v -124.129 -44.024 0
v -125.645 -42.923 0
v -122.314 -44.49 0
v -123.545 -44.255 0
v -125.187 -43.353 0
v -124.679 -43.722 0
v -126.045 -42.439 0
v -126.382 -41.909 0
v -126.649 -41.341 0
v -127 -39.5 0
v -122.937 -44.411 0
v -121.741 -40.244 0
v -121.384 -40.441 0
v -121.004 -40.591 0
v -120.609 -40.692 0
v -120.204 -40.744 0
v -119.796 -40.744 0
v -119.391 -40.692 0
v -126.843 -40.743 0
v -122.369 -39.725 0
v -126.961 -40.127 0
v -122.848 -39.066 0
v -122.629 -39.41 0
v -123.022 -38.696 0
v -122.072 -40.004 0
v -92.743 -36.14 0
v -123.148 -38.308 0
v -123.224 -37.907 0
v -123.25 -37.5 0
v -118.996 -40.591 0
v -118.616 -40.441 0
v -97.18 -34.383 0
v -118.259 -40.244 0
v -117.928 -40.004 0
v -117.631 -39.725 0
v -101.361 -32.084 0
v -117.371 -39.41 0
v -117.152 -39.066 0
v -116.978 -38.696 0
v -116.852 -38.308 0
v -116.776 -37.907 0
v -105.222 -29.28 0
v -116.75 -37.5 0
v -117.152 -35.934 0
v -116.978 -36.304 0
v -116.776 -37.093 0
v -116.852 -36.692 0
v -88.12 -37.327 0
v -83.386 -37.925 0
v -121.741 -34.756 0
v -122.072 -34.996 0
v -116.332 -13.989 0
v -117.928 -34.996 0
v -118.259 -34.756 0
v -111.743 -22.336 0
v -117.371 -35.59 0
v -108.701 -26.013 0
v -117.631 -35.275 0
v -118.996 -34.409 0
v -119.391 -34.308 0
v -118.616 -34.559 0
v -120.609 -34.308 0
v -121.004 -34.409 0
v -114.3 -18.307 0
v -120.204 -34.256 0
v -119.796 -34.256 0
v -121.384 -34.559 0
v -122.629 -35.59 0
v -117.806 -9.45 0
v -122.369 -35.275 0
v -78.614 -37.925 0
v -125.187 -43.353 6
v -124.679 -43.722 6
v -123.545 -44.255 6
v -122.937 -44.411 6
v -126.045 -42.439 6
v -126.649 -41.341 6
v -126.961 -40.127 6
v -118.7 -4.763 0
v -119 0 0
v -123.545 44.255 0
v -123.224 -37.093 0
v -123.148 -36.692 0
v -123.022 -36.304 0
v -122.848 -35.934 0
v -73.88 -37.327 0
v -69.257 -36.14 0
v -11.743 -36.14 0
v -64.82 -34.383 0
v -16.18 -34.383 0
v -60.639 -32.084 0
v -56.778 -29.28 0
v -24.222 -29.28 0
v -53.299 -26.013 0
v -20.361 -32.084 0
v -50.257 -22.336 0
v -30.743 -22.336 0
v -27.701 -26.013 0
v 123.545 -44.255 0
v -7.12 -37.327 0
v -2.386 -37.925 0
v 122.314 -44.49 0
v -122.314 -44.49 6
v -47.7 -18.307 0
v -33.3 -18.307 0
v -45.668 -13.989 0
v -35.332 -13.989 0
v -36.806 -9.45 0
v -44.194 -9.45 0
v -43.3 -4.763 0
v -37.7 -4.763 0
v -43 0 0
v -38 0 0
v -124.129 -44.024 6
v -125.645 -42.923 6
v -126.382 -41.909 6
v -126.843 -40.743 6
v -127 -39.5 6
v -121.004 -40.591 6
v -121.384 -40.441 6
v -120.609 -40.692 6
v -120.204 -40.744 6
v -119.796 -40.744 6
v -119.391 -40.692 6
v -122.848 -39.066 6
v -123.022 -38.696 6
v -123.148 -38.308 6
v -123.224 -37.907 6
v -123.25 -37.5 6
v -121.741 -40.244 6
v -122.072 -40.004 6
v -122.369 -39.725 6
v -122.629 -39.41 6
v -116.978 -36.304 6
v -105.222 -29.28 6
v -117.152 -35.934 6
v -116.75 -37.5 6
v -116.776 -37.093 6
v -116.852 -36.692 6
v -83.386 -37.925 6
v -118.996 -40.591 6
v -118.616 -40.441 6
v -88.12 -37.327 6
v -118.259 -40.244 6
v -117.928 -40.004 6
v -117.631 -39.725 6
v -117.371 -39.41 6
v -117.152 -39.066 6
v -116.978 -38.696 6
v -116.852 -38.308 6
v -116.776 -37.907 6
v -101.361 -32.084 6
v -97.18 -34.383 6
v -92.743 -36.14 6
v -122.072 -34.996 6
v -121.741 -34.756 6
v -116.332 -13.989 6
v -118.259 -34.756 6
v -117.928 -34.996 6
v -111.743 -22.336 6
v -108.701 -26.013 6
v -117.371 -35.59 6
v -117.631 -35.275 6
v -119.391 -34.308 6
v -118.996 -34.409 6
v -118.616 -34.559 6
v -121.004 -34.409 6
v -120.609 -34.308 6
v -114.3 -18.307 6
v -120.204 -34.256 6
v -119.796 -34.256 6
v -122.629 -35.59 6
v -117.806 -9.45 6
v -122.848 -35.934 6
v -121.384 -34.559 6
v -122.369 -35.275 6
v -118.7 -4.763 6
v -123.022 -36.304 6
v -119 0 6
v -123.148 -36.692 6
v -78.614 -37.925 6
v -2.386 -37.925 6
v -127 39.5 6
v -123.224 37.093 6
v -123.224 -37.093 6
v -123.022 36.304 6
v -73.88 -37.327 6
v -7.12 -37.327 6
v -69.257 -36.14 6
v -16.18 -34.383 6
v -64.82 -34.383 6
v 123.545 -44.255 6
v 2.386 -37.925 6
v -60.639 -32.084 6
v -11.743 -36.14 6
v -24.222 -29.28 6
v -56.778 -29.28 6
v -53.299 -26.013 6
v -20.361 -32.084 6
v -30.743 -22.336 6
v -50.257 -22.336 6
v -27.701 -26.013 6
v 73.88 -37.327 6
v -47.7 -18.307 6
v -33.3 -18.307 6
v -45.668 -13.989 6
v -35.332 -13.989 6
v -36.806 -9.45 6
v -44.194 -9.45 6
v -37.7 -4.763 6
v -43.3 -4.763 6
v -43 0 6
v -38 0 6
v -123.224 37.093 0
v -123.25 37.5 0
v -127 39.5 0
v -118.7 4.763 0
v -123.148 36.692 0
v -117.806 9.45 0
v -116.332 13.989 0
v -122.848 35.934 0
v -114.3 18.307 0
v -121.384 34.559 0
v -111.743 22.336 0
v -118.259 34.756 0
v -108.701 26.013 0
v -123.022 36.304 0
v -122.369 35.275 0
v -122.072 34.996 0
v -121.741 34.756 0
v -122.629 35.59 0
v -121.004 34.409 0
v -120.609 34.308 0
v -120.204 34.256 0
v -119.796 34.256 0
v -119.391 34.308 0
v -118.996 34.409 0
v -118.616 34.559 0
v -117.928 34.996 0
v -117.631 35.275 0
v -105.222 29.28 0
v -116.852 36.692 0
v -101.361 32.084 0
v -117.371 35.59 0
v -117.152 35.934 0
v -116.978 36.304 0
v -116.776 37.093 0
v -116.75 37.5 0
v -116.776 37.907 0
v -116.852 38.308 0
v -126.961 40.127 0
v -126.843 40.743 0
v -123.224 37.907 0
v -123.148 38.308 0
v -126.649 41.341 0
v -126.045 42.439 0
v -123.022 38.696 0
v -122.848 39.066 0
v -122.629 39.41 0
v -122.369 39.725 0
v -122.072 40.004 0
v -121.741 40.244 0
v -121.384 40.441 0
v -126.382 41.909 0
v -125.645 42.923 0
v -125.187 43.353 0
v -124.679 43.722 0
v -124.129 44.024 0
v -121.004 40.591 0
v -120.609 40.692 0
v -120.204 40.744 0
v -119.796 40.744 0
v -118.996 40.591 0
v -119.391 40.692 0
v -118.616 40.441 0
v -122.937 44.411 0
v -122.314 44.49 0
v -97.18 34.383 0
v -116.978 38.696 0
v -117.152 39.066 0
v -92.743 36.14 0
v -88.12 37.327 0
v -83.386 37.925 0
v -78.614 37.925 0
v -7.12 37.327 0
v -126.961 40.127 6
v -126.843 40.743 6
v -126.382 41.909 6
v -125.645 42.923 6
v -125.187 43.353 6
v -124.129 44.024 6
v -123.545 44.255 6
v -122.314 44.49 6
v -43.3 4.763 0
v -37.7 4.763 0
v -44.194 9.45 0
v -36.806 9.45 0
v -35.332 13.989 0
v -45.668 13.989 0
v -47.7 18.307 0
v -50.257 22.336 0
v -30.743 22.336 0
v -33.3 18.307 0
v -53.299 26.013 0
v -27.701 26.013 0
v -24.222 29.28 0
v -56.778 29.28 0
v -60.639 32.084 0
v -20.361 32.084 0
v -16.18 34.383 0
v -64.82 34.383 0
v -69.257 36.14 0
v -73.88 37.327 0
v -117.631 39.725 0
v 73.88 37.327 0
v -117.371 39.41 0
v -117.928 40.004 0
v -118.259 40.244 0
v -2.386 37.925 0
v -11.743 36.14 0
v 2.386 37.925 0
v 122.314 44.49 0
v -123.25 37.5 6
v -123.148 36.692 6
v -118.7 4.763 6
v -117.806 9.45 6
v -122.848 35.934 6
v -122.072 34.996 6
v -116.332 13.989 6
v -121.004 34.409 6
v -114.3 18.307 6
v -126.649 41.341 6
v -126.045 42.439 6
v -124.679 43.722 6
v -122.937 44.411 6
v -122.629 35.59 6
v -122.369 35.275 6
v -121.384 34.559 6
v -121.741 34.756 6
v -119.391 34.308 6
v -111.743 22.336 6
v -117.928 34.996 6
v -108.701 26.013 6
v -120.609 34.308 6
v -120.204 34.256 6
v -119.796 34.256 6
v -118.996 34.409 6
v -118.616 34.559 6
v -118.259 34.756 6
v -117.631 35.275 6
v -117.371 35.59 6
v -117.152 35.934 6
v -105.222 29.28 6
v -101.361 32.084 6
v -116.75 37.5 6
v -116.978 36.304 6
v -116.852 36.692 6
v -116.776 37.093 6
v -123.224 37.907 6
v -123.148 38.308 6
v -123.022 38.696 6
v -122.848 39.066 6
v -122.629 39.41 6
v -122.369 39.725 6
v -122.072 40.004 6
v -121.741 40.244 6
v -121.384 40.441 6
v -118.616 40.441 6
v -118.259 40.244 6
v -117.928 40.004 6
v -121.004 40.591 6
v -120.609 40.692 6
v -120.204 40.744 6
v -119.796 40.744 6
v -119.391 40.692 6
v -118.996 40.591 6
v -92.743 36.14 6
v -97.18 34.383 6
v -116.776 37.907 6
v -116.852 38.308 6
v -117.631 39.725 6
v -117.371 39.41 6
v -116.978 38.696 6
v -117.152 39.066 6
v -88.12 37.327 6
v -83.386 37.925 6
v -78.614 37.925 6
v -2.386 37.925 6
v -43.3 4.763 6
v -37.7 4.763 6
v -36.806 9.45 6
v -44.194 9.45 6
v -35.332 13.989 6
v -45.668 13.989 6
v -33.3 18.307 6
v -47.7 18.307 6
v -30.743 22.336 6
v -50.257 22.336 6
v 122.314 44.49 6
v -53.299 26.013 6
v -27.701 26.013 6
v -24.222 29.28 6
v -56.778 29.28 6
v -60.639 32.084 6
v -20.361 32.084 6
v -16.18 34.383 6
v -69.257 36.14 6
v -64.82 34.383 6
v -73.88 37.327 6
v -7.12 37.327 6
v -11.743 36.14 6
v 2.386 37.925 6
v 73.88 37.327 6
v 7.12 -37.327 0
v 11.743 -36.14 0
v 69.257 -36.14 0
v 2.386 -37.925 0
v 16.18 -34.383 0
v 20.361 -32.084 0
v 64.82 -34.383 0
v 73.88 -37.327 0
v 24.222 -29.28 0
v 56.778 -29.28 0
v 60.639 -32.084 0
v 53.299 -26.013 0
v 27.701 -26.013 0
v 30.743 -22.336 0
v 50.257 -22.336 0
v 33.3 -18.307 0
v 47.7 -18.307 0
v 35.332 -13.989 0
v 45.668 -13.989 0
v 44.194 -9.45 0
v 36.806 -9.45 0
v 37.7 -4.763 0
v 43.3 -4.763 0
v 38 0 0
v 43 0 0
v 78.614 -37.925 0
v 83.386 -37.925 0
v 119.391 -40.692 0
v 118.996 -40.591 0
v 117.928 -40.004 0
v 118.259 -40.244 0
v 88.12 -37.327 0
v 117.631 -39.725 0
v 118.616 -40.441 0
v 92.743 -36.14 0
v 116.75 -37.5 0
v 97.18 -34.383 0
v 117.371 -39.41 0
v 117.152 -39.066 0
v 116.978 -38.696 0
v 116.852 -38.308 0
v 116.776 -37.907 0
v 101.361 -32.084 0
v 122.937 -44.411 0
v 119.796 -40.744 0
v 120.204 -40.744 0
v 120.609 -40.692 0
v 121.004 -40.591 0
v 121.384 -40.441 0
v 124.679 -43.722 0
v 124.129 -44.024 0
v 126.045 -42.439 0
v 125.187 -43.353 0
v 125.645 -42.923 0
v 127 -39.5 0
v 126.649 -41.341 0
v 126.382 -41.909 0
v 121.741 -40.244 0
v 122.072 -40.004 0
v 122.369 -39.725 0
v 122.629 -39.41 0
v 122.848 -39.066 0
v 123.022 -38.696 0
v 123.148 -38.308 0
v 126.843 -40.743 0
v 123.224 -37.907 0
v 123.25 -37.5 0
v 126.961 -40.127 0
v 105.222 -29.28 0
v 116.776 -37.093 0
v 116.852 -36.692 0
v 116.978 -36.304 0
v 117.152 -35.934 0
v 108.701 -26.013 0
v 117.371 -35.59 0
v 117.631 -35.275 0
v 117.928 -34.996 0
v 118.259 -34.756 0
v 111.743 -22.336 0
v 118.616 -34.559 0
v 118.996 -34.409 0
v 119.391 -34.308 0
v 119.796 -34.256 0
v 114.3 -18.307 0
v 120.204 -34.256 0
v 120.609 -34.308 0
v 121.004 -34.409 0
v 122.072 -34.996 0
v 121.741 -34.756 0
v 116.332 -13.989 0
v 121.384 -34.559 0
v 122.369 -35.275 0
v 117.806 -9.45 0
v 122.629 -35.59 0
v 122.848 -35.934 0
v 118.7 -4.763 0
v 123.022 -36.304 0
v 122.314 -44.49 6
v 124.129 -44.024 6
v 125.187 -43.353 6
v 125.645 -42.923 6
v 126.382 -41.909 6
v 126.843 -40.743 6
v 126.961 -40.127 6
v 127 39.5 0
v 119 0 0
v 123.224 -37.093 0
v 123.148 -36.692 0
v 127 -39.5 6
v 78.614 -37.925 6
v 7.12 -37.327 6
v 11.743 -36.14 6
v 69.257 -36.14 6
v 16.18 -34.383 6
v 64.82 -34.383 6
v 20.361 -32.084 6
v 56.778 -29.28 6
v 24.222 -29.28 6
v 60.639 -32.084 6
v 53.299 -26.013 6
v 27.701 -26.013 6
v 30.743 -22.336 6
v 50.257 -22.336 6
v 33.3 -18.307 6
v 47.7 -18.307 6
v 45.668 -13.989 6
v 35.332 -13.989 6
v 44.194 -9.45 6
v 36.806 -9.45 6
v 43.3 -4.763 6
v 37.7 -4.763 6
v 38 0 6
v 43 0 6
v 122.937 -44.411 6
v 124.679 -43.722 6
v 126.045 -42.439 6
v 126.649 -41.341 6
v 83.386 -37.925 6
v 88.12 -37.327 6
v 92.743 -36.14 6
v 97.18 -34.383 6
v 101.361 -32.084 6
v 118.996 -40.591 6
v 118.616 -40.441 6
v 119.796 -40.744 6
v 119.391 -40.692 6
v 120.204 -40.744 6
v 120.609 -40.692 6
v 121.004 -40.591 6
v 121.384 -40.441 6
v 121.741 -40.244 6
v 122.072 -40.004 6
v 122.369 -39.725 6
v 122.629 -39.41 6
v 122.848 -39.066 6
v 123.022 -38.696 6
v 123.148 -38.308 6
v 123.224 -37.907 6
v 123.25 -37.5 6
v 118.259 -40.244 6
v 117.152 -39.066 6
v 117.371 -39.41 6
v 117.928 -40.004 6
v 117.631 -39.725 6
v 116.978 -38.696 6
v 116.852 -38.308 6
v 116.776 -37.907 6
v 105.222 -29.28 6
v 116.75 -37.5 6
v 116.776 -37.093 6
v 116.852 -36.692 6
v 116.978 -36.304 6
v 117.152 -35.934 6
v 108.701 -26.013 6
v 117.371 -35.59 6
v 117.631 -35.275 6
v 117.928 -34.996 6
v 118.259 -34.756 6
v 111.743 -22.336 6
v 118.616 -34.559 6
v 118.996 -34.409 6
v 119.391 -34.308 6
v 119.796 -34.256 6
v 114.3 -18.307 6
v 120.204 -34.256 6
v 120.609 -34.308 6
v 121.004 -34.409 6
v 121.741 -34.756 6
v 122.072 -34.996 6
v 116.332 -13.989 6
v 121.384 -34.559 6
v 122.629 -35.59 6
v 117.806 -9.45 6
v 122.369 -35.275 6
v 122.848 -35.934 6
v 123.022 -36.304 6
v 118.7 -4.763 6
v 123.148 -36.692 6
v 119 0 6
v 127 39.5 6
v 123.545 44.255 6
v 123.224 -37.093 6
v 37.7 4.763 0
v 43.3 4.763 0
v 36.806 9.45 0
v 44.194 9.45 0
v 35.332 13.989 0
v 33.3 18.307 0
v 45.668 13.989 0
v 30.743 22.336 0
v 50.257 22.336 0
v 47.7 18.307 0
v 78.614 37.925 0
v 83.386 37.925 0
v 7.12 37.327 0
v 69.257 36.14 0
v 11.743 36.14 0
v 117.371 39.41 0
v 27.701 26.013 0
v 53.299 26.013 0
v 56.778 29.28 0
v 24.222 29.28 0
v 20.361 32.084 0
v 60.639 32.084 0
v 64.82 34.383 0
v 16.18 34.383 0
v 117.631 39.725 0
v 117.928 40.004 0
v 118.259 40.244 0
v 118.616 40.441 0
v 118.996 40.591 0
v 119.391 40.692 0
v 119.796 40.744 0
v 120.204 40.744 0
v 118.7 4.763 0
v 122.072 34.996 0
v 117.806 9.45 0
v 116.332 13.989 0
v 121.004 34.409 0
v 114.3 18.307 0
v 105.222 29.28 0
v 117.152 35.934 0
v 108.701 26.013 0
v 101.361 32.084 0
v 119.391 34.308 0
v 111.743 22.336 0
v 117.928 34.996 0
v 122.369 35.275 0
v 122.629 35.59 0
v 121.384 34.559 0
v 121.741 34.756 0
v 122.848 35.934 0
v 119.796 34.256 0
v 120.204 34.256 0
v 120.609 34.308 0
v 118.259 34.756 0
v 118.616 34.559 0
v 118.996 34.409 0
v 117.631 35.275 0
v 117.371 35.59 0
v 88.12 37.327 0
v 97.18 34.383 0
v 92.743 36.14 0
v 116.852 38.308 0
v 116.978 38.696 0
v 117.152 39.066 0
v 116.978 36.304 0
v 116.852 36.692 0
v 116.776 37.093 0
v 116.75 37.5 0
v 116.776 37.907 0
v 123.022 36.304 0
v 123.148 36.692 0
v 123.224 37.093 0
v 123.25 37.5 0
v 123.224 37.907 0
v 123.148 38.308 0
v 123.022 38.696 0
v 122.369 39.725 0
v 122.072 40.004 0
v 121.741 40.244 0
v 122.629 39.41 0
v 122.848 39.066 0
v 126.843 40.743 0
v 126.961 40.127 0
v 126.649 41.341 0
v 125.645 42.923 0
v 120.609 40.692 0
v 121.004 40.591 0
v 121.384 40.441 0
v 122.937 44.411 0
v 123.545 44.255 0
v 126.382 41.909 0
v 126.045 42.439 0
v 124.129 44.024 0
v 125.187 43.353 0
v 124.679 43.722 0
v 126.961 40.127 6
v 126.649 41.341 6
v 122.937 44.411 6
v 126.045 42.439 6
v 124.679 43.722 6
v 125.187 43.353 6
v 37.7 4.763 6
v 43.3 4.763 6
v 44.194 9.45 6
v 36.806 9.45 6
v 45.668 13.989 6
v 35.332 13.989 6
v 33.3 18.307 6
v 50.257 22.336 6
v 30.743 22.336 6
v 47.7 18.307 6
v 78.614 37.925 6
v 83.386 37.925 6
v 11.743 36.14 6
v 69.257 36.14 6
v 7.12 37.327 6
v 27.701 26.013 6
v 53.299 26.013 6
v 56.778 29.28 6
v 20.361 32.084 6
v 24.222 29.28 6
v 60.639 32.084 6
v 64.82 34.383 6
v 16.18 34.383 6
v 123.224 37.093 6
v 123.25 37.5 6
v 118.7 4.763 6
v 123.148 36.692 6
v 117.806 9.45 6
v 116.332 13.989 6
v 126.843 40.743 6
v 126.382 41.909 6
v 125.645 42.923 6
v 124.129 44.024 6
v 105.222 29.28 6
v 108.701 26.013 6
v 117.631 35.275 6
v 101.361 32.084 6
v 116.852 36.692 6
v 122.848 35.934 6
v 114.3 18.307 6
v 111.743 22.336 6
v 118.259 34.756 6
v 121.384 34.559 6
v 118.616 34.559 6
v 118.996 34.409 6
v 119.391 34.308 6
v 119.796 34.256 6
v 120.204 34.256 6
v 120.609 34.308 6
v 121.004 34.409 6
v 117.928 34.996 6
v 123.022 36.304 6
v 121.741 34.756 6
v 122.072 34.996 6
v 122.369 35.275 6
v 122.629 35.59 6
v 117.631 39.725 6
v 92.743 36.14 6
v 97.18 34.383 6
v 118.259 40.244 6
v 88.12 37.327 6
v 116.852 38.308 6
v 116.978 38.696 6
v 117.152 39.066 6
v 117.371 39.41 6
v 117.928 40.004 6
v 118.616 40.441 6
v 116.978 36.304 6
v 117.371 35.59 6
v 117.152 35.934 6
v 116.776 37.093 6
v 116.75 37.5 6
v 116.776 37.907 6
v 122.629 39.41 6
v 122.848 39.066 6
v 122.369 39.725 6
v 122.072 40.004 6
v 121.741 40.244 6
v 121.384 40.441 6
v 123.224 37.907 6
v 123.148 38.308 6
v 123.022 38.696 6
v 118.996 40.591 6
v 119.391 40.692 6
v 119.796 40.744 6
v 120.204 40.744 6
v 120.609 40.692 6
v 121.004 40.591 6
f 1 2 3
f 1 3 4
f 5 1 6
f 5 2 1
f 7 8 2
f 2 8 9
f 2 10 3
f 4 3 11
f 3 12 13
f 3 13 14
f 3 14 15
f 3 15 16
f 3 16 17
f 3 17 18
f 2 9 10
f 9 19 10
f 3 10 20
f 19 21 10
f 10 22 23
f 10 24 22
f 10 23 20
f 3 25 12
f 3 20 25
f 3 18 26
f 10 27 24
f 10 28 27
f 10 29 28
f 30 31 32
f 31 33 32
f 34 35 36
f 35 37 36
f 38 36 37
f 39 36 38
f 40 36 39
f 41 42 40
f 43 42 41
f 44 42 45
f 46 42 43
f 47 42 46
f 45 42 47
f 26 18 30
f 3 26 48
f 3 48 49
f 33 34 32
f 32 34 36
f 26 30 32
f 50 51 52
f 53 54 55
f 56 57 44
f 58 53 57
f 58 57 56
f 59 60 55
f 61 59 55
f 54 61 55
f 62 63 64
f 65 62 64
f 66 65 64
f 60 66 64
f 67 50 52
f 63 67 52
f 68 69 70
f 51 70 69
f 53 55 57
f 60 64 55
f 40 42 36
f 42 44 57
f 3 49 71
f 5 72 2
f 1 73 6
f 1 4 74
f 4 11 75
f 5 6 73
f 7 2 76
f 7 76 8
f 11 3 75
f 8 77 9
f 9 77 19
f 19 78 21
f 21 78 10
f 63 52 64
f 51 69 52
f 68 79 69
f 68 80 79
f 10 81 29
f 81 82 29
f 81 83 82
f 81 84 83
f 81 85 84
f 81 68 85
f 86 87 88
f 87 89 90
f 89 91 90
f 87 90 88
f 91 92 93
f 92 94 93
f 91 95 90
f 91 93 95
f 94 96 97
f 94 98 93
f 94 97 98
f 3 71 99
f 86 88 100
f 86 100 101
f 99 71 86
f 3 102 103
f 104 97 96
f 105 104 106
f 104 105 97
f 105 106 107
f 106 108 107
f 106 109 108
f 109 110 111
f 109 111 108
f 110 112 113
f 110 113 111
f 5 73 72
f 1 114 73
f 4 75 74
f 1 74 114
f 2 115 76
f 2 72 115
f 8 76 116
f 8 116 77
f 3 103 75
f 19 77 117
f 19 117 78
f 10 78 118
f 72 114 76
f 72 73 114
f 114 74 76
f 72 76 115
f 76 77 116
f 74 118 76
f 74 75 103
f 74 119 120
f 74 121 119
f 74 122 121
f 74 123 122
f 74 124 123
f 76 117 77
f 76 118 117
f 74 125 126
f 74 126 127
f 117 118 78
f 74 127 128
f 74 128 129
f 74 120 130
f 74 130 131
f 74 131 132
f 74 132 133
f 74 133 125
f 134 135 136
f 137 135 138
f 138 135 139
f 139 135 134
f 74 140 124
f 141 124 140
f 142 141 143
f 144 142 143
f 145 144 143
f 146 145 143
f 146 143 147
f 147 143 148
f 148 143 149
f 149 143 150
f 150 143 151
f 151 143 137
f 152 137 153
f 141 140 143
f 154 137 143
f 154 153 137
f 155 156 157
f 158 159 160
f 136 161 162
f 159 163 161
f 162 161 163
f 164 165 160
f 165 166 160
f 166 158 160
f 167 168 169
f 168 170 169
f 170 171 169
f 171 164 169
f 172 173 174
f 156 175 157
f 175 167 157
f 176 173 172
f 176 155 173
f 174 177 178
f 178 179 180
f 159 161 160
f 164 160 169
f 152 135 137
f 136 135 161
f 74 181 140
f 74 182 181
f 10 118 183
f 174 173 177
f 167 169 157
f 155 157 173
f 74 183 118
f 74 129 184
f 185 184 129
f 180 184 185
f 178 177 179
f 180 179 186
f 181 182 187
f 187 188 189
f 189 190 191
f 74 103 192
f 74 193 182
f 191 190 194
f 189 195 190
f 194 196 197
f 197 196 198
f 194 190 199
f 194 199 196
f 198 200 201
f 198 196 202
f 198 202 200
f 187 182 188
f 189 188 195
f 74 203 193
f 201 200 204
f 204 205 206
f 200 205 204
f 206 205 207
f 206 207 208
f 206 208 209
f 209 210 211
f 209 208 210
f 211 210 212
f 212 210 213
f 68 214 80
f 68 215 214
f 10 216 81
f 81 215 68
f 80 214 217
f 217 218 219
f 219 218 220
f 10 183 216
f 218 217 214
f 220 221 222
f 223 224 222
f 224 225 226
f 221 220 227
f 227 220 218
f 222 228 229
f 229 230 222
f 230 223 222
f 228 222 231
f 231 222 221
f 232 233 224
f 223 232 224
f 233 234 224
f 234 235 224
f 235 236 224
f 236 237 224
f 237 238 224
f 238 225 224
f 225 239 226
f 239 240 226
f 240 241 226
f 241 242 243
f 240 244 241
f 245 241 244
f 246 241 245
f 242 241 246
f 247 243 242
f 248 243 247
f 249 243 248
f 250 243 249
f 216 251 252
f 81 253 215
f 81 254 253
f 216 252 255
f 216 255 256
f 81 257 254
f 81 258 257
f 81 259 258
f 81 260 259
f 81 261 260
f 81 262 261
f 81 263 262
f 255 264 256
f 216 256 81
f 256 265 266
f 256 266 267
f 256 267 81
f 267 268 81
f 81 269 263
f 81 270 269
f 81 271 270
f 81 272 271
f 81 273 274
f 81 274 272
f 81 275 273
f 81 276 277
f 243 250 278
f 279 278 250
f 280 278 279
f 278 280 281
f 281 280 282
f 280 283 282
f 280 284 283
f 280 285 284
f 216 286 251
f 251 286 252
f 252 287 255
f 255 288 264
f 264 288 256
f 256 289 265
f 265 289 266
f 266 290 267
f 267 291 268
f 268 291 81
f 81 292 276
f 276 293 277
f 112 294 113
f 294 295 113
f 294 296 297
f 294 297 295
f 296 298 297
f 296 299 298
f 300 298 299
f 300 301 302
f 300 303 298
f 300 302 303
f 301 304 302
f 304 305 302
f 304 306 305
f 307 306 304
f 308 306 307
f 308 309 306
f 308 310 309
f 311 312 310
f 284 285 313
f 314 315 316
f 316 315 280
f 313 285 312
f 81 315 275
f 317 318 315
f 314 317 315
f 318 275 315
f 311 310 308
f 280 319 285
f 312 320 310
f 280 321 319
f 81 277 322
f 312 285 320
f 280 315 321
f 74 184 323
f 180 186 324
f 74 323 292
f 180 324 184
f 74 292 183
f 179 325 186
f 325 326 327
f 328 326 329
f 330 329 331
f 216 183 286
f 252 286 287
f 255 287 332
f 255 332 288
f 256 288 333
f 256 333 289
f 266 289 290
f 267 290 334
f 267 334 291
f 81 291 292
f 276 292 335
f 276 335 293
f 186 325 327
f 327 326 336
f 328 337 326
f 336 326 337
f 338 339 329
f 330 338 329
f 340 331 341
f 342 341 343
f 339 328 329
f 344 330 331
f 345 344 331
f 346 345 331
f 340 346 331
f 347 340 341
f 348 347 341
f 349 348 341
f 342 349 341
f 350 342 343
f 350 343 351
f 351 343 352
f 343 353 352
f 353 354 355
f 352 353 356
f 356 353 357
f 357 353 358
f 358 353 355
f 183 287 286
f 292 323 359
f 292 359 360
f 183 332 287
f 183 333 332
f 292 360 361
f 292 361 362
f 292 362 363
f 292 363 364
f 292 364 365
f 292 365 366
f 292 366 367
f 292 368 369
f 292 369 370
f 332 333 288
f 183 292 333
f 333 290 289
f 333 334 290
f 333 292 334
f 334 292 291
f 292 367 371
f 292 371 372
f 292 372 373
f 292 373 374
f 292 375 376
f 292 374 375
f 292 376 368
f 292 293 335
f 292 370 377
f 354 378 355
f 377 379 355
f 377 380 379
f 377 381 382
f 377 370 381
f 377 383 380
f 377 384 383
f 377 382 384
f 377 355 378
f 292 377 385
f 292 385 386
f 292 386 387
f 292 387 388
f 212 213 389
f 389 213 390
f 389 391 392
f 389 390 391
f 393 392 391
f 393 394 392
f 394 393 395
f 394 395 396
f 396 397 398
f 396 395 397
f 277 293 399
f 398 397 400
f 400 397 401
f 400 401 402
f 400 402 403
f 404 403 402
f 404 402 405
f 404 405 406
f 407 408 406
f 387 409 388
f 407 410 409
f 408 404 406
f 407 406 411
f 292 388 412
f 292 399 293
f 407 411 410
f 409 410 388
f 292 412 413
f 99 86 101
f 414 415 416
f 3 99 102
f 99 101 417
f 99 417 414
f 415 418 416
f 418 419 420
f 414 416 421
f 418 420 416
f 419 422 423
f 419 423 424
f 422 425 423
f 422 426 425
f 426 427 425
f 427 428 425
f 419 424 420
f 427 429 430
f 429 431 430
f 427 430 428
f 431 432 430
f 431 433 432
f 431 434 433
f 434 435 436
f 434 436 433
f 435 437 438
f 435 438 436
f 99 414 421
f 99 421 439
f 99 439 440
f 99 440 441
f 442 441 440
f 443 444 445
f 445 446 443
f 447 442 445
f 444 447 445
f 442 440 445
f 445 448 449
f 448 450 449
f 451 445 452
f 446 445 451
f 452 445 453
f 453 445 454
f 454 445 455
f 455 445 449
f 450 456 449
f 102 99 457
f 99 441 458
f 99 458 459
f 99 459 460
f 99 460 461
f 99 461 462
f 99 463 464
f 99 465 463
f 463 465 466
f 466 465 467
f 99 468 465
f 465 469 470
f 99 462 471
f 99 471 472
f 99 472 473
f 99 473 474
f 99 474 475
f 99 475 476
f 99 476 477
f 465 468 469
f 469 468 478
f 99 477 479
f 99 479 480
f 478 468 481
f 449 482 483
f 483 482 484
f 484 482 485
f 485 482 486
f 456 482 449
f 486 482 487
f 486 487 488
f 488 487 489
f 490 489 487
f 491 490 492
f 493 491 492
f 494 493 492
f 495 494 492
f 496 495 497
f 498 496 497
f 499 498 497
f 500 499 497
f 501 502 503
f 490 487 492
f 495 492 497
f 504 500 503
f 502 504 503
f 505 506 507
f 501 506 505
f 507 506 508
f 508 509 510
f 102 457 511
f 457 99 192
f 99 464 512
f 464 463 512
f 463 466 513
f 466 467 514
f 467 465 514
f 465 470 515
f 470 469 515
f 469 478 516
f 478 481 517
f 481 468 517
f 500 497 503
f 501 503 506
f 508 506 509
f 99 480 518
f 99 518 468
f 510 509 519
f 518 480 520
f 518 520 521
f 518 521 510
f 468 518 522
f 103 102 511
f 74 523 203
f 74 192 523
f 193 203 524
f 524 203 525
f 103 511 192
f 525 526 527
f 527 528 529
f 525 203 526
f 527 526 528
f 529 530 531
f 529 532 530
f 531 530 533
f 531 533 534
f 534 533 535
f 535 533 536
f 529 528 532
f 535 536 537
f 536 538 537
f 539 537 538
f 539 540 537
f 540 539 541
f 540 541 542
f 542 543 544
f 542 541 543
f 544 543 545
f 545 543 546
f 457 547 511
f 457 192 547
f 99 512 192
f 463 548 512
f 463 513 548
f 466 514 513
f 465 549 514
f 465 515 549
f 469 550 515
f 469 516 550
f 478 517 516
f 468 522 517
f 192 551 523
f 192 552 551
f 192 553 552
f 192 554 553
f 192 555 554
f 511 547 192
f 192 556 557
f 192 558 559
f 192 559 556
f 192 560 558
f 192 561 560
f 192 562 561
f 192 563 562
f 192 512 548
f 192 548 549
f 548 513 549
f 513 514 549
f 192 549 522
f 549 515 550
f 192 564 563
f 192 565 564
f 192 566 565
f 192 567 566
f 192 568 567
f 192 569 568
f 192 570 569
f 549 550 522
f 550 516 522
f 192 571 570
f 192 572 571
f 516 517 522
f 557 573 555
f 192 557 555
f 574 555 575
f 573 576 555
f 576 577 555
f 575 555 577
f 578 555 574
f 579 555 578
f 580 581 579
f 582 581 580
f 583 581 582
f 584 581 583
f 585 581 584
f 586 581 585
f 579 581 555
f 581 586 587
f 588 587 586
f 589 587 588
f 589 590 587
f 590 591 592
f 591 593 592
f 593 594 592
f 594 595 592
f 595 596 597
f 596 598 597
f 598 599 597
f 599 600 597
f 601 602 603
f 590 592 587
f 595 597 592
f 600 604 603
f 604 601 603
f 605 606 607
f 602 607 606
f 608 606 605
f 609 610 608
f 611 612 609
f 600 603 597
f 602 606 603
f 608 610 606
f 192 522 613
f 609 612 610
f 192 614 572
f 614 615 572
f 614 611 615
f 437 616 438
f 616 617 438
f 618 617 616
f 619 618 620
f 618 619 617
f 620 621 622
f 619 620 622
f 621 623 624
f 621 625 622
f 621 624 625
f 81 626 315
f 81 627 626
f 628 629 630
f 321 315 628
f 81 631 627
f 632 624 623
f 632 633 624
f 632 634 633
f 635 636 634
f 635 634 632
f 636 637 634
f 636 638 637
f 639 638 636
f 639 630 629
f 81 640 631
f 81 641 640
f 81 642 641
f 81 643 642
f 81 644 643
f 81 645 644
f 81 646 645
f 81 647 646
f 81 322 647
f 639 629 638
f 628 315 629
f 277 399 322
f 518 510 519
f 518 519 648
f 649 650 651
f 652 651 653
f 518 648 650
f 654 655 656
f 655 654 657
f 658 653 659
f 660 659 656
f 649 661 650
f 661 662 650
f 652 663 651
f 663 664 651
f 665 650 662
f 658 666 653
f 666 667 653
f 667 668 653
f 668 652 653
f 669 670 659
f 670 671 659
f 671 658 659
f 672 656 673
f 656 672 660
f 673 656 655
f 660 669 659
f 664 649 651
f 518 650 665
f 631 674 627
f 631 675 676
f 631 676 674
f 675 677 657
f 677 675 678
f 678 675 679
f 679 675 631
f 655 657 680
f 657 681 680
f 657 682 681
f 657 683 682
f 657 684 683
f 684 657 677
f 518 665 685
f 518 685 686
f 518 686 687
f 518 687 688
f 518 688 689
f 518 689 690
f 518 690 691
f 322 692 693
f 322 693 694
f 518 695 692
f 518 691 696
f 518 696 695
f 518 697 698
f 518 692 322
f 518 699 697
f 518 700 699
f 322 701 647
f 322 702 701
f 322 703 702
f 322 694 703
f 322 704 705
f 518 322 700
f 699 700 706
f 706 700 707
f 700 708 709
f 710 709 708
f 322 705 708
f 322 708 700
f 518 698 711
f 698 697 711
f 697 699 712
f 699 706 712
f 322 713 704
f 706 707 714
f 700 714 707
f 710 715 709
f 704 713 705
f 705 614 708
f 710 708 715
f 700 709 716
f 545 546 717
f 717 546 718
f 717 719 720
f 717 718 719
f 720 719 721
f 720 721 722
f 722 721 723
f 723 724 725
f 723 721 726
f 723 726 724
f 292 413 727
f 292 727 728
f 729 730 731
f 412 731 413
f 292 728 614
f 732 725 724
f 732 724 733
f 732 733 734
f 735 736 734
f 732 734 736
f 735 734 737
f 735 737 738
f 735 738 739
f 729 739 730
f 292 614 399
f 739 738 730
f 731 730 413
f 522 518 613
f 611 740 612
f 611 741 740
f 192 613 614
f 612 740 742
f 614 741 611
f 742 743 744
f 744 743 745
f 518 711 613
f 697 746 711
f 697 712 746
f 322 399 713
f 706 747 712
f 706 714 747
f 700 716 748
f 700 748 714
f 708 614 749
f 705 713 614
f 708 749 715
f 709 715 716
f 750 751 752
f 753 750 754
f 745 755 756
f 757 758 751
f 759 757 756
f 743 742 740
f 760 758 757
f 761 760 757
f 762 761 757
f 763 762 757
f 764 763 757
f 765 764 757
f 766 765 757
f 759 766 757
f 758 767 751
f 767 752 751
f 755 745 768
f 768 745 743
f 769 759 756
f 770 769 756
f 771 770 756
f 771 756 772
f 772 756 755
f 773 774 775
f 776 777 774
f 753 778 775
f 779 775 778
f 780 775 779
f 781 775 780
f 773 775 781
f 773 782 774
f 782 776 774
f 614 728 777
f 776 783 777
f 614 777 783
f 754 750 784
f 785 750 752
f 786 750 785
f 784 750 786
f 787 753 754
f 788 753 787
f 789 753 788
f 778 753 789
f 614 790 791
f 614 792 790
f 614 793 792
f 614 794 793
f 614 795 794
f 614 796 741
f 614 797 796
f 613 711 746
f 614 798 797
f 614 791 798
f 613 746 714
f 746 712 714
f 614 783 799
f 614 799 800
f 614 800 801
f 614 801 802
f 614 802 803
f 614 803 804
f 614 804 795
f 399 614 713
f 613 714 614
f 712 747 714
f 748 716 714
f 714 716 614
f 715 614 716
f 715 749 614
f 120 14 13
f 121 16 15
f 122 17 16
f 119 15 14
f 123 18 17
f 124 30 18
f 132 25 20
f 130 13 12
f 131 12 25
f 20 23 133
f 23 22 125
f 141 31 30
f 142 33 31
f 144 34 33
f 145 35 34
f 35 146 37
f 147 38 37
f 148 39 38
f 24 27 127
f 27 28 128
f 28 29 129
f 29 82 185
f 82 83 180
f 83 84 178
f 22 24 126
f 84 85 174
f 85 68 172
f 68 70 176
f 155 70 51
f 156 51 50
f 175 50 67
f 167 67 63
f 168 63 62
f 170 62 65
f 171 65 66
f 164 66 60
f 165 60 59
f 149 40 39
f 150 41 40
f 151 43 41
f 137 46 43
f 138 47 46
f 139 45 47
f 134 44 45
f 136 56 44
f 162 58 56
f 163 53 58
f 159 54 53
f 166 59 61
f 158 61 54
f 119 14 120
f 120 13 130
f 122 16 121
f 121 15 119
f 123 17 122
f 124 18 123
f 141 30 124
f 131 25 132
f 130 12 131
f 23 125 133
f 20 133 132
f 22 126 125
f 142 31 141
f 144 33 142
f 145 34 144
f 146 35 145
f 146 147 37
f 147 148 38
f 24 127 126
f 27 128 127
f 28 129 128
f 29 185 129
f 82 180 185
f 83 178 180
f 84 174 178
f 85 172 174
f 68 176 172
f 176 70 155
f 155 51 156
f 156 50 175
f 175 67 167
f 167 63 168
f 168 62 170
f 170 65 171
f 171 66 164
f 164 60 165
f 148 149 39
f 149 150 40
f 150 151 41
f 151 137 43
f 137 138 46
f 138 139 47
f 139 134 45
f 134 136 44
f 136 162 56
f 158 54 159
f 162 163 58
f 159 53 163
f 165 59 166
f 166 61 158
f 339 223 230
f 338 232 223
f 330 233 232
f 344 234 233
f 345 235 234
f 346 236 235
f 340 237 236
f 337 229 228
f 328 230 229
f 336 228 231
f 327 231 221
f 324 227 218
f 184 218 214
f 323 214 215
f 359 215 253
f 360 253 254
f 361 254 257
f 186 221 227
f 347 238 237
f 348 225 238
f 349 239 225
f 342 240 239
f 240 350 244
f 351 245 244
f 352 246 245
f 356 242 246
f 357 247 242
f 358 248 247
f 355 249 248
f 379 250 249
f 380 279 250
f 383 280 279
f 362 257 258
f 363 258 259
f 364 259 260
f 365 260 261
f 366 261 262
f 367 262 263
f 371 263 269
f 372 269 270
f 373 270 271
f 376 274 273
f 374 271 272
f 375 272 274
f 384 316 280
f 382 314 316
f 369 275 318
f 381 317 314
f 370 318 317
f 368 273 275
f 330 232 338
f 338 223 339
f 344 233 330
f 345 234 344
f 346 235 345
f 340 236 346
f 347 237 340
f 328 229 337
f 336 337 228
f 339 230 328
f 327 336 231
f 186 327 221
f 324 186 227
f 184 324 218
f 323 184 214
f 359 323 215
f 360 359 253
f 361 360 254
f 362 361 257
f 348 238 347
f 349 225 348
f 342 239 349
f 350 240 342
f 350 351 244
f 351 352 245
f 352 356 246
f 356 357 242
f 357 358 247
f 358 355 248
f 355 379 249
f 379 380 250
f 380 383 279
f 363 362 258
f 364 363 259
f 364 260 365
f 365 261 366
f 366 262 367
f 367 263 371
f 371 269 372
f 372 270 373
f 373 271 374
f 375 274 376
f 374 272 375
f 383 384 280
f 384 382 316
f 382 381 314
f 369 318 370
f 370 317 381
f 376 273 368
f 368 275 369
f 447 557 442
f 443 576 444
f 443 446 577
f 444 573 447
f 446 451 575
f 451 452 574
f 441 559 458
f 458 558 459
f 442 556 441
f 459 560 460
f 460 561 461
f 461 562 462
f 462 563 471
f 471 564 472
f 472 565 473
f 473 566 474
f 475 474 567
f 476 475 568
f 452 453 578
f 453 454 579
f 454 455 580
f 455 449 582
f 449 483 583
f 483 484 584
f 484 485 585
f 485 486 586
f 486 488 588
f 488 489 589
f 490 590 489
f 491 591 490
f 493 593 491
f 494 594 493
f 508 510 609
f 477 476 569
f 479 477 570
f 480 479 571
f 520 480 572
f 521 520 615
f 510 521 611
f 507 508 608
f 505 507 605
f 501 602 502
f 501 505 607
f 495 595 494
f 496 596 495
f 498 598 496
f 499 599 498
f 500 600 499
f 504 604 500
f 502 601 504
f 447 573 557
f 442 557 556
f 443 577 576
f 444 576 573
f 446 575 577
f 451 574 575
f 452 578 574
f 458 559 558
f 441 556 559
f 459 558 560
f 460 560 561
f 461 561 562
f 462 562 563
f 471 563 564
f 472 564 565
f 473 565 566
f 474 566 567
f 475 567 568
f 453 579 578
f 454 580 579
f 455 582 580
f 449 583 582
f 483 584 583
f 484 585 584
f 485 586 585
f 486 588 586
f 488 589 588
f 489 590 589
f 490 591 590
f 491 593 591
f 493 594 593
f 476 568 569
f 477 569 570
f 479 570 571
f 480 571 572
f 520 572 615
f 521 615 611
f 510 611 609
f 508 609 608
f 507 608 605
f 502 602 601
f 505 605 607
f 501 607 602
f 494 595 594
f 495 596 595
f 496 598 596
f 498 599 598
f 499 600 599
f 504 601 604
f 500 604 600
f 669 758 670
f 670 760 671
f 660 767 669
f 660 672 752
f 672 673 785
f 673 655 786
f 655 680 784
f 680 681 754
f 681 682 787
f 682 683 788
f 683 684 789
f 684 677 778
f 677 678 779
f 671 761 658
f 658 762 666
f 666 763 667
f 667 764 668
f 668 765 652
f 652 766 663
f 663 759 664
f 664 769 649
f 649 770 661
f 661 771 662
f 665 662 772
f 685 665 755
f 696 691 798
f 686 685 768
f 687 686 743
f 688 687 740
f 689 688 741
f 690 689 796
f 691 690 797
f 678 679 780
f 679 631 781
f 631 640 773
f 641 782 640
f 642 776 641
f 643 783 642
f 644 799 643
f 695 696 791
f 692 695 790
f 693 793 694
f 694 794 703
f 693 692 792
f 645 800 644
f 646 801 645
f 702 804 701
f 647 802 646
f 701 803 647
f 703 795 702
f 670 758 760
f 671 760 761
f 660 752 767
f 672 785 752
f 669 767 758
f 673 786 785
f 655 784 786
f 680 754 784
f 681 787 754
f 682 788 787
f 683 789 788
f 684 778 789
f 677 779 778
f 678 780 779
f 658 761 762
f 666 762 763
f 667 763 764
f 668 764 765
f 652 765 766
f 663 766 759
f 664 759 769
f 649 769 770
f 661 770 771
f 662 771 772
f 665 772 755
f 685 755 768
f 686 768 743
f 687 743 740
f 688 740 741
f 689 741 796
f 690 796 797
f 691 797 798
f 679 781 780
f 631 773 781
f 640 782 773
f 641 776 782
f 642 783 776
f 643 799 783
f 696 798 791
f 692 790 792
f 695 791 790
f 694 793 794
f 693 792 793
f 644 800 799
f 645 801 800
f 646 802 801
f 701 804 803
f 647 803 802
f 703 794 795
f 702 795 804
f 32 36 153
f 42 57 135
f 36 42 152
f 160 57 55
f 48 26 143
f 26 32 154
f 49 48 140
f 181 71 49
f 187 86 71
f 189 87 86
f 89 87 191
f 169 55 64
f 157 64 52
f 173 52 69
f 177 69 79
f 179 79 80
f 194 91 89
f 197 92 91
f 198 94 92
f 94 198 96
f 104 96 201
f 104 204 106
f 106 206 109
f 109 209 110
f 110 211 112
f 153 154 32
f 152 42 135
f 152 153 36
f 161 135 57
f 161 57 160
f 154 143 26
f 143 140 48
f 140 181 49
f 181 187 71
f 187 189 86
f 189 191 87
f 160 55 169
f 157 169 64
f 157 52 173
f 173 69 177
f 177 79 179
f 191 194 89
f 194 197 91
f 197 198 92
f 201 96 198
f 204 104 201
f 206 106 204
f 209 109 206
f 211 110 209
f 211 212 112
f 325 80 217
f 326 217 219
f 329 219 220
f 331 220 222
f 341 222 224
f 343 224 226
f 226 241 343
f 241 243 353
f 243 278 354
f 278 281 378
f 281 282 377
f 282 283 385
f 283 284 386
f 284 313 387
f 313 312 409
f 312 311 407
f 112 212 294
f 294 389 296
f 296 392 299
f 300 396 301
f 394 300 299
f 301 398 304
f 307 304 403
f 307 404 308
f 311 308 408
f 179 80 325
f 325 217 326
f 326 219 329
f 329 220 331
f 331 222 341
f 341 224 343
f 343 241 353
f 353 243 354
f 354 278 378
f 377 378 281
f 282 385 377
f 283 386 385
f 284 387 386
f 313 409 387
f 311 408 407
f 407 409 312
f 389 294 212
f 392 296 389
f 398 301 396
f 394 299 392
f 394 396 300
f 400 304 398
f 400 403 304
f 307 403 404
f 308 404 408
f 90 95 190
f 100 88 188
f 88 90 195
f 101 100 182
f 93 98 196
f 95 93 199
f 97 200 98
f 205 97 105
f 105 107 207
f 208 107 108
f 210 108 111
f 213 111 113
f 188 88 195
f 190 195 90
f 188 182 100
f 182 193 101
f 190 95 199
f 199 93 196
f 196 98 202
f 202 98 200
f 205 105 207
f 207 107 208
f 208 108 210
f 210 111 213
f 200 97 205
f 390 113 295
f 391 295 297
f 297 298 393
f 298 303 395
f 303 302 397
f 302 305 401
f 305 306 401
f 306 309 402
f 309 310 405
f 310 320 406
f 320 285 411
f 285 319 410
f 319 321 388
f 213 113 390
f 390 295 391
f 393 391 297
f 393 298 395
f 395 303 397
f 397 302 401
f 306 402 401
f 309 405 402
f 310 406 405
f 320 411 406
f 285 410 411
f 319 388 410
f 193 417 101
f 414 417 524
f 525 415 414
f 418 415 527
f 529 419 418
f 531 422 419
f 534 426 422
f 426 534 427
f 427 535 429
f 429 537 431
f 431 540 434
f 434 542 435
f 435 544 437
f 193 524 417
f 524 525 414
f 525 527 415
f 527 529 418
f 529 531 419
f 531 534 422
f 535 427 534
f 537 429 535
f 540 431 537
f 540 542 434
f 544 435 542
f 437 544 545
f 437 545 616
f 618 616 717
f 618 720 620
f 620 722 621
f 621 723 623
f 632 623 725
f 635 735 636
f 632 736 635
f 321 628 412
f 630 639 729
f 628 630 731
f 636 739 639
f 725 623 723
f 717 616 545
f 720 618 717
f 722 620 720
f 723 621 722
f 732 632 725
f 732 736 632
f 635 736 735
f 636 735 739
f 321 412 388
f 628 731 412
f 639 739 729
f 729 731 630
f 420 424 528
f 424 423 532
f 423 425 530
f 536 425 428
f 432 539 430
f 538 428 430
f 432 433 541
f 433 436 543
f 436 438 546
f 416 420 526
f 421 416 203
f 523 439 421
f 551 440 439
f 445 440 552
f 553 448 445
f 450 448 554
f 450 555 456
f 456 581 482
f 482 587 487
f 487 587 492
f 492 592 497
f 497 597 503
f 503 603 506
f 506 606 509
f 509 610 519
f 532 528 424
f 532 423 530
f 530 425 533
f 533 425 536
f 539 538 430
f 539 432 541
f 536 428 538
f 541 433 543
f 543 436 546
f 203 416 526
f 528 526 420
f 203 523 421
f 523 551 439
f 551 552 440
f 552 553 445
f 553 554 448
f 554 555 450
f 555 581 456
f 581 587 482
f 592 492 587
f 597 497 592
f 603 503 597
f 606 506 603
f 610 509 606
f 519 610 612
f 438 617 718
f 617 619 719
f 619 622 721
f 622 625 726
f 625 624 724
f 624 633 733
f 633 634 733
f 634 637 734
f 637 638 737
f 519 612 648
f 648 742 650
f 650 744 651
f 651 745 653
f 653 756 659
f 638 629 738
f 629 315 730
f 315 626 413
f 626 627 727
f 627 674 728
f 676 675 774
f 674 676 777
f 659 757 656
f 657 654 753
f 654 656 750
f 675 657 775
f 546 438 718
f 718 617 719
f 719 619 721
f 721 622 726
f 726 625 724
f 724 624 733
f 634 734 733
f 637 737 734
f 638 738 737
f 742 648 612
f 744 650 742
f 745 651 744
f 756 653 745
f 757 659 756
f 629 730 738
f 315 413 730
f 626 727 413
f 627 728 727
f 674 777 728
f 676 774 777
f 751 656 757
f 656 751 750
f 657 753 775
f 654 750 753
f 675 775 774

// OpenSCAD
$fn = 50;

difference() {
	union() {
		hull() {
			translate(v = [-122.0, 39.5, 0]) {
				cylinder(h = 6, r = 5);
			}
			translate(v = [122.0, 39.5, 0]) {
				cylinder(h = 6, r = 5);
			}
			translate(v = [-122.0, -39.5, 0]) {
				cylinder(h = 6, r = 5);
			}
			translate(v = [122.0, -39.5, 0]) {
				cylinder(h = 6, r = 5);
			}
		}
	}
	union() {
		translate(v = [-120.0, -37.5, -100.0]) {
			cylinder(h = 200, r = 3.25);
		}
		translate(v = [-120.0, 37.5, -100.0]) {
			cylinder(h = 200, r = 3.25);
		}
		translate(v = [120.0, -37.5, -100.0]) {
			cylinder(h = 200, r = 3.25);
		}
		translate(v = [120.0, 37.5, -100.0]) {
			cylinder(h = 200, r = 3.25);
		}
		translate(v = [-120.0, -37.5, -100.0]) {
			cylinder(h = 200, r = 1.8);
		}
		translate(v = [-120.0, 37.5, -100.0]) {
			cylinder(h = 200, r = 1.8);
		}
		translate(v = [120.0, -37.5, -100.0]) {
			cylinder(h = 200, r = 1.8);
		}
		translate(v = [120.0, 37.5, -100.0]) {
			cylinder(h = 200, r = 1.8);
		}
		translate(v = [-81.0, 0, 0.0]) {
			cylinder(h = 6, r = 38.0);
		}
		cylinder(h = 6, r = 38.0);
		translate(v = [81.0, 0, 0.0]) {
			cylinder(h = 6, r = 38.0);
		}
	}
}
